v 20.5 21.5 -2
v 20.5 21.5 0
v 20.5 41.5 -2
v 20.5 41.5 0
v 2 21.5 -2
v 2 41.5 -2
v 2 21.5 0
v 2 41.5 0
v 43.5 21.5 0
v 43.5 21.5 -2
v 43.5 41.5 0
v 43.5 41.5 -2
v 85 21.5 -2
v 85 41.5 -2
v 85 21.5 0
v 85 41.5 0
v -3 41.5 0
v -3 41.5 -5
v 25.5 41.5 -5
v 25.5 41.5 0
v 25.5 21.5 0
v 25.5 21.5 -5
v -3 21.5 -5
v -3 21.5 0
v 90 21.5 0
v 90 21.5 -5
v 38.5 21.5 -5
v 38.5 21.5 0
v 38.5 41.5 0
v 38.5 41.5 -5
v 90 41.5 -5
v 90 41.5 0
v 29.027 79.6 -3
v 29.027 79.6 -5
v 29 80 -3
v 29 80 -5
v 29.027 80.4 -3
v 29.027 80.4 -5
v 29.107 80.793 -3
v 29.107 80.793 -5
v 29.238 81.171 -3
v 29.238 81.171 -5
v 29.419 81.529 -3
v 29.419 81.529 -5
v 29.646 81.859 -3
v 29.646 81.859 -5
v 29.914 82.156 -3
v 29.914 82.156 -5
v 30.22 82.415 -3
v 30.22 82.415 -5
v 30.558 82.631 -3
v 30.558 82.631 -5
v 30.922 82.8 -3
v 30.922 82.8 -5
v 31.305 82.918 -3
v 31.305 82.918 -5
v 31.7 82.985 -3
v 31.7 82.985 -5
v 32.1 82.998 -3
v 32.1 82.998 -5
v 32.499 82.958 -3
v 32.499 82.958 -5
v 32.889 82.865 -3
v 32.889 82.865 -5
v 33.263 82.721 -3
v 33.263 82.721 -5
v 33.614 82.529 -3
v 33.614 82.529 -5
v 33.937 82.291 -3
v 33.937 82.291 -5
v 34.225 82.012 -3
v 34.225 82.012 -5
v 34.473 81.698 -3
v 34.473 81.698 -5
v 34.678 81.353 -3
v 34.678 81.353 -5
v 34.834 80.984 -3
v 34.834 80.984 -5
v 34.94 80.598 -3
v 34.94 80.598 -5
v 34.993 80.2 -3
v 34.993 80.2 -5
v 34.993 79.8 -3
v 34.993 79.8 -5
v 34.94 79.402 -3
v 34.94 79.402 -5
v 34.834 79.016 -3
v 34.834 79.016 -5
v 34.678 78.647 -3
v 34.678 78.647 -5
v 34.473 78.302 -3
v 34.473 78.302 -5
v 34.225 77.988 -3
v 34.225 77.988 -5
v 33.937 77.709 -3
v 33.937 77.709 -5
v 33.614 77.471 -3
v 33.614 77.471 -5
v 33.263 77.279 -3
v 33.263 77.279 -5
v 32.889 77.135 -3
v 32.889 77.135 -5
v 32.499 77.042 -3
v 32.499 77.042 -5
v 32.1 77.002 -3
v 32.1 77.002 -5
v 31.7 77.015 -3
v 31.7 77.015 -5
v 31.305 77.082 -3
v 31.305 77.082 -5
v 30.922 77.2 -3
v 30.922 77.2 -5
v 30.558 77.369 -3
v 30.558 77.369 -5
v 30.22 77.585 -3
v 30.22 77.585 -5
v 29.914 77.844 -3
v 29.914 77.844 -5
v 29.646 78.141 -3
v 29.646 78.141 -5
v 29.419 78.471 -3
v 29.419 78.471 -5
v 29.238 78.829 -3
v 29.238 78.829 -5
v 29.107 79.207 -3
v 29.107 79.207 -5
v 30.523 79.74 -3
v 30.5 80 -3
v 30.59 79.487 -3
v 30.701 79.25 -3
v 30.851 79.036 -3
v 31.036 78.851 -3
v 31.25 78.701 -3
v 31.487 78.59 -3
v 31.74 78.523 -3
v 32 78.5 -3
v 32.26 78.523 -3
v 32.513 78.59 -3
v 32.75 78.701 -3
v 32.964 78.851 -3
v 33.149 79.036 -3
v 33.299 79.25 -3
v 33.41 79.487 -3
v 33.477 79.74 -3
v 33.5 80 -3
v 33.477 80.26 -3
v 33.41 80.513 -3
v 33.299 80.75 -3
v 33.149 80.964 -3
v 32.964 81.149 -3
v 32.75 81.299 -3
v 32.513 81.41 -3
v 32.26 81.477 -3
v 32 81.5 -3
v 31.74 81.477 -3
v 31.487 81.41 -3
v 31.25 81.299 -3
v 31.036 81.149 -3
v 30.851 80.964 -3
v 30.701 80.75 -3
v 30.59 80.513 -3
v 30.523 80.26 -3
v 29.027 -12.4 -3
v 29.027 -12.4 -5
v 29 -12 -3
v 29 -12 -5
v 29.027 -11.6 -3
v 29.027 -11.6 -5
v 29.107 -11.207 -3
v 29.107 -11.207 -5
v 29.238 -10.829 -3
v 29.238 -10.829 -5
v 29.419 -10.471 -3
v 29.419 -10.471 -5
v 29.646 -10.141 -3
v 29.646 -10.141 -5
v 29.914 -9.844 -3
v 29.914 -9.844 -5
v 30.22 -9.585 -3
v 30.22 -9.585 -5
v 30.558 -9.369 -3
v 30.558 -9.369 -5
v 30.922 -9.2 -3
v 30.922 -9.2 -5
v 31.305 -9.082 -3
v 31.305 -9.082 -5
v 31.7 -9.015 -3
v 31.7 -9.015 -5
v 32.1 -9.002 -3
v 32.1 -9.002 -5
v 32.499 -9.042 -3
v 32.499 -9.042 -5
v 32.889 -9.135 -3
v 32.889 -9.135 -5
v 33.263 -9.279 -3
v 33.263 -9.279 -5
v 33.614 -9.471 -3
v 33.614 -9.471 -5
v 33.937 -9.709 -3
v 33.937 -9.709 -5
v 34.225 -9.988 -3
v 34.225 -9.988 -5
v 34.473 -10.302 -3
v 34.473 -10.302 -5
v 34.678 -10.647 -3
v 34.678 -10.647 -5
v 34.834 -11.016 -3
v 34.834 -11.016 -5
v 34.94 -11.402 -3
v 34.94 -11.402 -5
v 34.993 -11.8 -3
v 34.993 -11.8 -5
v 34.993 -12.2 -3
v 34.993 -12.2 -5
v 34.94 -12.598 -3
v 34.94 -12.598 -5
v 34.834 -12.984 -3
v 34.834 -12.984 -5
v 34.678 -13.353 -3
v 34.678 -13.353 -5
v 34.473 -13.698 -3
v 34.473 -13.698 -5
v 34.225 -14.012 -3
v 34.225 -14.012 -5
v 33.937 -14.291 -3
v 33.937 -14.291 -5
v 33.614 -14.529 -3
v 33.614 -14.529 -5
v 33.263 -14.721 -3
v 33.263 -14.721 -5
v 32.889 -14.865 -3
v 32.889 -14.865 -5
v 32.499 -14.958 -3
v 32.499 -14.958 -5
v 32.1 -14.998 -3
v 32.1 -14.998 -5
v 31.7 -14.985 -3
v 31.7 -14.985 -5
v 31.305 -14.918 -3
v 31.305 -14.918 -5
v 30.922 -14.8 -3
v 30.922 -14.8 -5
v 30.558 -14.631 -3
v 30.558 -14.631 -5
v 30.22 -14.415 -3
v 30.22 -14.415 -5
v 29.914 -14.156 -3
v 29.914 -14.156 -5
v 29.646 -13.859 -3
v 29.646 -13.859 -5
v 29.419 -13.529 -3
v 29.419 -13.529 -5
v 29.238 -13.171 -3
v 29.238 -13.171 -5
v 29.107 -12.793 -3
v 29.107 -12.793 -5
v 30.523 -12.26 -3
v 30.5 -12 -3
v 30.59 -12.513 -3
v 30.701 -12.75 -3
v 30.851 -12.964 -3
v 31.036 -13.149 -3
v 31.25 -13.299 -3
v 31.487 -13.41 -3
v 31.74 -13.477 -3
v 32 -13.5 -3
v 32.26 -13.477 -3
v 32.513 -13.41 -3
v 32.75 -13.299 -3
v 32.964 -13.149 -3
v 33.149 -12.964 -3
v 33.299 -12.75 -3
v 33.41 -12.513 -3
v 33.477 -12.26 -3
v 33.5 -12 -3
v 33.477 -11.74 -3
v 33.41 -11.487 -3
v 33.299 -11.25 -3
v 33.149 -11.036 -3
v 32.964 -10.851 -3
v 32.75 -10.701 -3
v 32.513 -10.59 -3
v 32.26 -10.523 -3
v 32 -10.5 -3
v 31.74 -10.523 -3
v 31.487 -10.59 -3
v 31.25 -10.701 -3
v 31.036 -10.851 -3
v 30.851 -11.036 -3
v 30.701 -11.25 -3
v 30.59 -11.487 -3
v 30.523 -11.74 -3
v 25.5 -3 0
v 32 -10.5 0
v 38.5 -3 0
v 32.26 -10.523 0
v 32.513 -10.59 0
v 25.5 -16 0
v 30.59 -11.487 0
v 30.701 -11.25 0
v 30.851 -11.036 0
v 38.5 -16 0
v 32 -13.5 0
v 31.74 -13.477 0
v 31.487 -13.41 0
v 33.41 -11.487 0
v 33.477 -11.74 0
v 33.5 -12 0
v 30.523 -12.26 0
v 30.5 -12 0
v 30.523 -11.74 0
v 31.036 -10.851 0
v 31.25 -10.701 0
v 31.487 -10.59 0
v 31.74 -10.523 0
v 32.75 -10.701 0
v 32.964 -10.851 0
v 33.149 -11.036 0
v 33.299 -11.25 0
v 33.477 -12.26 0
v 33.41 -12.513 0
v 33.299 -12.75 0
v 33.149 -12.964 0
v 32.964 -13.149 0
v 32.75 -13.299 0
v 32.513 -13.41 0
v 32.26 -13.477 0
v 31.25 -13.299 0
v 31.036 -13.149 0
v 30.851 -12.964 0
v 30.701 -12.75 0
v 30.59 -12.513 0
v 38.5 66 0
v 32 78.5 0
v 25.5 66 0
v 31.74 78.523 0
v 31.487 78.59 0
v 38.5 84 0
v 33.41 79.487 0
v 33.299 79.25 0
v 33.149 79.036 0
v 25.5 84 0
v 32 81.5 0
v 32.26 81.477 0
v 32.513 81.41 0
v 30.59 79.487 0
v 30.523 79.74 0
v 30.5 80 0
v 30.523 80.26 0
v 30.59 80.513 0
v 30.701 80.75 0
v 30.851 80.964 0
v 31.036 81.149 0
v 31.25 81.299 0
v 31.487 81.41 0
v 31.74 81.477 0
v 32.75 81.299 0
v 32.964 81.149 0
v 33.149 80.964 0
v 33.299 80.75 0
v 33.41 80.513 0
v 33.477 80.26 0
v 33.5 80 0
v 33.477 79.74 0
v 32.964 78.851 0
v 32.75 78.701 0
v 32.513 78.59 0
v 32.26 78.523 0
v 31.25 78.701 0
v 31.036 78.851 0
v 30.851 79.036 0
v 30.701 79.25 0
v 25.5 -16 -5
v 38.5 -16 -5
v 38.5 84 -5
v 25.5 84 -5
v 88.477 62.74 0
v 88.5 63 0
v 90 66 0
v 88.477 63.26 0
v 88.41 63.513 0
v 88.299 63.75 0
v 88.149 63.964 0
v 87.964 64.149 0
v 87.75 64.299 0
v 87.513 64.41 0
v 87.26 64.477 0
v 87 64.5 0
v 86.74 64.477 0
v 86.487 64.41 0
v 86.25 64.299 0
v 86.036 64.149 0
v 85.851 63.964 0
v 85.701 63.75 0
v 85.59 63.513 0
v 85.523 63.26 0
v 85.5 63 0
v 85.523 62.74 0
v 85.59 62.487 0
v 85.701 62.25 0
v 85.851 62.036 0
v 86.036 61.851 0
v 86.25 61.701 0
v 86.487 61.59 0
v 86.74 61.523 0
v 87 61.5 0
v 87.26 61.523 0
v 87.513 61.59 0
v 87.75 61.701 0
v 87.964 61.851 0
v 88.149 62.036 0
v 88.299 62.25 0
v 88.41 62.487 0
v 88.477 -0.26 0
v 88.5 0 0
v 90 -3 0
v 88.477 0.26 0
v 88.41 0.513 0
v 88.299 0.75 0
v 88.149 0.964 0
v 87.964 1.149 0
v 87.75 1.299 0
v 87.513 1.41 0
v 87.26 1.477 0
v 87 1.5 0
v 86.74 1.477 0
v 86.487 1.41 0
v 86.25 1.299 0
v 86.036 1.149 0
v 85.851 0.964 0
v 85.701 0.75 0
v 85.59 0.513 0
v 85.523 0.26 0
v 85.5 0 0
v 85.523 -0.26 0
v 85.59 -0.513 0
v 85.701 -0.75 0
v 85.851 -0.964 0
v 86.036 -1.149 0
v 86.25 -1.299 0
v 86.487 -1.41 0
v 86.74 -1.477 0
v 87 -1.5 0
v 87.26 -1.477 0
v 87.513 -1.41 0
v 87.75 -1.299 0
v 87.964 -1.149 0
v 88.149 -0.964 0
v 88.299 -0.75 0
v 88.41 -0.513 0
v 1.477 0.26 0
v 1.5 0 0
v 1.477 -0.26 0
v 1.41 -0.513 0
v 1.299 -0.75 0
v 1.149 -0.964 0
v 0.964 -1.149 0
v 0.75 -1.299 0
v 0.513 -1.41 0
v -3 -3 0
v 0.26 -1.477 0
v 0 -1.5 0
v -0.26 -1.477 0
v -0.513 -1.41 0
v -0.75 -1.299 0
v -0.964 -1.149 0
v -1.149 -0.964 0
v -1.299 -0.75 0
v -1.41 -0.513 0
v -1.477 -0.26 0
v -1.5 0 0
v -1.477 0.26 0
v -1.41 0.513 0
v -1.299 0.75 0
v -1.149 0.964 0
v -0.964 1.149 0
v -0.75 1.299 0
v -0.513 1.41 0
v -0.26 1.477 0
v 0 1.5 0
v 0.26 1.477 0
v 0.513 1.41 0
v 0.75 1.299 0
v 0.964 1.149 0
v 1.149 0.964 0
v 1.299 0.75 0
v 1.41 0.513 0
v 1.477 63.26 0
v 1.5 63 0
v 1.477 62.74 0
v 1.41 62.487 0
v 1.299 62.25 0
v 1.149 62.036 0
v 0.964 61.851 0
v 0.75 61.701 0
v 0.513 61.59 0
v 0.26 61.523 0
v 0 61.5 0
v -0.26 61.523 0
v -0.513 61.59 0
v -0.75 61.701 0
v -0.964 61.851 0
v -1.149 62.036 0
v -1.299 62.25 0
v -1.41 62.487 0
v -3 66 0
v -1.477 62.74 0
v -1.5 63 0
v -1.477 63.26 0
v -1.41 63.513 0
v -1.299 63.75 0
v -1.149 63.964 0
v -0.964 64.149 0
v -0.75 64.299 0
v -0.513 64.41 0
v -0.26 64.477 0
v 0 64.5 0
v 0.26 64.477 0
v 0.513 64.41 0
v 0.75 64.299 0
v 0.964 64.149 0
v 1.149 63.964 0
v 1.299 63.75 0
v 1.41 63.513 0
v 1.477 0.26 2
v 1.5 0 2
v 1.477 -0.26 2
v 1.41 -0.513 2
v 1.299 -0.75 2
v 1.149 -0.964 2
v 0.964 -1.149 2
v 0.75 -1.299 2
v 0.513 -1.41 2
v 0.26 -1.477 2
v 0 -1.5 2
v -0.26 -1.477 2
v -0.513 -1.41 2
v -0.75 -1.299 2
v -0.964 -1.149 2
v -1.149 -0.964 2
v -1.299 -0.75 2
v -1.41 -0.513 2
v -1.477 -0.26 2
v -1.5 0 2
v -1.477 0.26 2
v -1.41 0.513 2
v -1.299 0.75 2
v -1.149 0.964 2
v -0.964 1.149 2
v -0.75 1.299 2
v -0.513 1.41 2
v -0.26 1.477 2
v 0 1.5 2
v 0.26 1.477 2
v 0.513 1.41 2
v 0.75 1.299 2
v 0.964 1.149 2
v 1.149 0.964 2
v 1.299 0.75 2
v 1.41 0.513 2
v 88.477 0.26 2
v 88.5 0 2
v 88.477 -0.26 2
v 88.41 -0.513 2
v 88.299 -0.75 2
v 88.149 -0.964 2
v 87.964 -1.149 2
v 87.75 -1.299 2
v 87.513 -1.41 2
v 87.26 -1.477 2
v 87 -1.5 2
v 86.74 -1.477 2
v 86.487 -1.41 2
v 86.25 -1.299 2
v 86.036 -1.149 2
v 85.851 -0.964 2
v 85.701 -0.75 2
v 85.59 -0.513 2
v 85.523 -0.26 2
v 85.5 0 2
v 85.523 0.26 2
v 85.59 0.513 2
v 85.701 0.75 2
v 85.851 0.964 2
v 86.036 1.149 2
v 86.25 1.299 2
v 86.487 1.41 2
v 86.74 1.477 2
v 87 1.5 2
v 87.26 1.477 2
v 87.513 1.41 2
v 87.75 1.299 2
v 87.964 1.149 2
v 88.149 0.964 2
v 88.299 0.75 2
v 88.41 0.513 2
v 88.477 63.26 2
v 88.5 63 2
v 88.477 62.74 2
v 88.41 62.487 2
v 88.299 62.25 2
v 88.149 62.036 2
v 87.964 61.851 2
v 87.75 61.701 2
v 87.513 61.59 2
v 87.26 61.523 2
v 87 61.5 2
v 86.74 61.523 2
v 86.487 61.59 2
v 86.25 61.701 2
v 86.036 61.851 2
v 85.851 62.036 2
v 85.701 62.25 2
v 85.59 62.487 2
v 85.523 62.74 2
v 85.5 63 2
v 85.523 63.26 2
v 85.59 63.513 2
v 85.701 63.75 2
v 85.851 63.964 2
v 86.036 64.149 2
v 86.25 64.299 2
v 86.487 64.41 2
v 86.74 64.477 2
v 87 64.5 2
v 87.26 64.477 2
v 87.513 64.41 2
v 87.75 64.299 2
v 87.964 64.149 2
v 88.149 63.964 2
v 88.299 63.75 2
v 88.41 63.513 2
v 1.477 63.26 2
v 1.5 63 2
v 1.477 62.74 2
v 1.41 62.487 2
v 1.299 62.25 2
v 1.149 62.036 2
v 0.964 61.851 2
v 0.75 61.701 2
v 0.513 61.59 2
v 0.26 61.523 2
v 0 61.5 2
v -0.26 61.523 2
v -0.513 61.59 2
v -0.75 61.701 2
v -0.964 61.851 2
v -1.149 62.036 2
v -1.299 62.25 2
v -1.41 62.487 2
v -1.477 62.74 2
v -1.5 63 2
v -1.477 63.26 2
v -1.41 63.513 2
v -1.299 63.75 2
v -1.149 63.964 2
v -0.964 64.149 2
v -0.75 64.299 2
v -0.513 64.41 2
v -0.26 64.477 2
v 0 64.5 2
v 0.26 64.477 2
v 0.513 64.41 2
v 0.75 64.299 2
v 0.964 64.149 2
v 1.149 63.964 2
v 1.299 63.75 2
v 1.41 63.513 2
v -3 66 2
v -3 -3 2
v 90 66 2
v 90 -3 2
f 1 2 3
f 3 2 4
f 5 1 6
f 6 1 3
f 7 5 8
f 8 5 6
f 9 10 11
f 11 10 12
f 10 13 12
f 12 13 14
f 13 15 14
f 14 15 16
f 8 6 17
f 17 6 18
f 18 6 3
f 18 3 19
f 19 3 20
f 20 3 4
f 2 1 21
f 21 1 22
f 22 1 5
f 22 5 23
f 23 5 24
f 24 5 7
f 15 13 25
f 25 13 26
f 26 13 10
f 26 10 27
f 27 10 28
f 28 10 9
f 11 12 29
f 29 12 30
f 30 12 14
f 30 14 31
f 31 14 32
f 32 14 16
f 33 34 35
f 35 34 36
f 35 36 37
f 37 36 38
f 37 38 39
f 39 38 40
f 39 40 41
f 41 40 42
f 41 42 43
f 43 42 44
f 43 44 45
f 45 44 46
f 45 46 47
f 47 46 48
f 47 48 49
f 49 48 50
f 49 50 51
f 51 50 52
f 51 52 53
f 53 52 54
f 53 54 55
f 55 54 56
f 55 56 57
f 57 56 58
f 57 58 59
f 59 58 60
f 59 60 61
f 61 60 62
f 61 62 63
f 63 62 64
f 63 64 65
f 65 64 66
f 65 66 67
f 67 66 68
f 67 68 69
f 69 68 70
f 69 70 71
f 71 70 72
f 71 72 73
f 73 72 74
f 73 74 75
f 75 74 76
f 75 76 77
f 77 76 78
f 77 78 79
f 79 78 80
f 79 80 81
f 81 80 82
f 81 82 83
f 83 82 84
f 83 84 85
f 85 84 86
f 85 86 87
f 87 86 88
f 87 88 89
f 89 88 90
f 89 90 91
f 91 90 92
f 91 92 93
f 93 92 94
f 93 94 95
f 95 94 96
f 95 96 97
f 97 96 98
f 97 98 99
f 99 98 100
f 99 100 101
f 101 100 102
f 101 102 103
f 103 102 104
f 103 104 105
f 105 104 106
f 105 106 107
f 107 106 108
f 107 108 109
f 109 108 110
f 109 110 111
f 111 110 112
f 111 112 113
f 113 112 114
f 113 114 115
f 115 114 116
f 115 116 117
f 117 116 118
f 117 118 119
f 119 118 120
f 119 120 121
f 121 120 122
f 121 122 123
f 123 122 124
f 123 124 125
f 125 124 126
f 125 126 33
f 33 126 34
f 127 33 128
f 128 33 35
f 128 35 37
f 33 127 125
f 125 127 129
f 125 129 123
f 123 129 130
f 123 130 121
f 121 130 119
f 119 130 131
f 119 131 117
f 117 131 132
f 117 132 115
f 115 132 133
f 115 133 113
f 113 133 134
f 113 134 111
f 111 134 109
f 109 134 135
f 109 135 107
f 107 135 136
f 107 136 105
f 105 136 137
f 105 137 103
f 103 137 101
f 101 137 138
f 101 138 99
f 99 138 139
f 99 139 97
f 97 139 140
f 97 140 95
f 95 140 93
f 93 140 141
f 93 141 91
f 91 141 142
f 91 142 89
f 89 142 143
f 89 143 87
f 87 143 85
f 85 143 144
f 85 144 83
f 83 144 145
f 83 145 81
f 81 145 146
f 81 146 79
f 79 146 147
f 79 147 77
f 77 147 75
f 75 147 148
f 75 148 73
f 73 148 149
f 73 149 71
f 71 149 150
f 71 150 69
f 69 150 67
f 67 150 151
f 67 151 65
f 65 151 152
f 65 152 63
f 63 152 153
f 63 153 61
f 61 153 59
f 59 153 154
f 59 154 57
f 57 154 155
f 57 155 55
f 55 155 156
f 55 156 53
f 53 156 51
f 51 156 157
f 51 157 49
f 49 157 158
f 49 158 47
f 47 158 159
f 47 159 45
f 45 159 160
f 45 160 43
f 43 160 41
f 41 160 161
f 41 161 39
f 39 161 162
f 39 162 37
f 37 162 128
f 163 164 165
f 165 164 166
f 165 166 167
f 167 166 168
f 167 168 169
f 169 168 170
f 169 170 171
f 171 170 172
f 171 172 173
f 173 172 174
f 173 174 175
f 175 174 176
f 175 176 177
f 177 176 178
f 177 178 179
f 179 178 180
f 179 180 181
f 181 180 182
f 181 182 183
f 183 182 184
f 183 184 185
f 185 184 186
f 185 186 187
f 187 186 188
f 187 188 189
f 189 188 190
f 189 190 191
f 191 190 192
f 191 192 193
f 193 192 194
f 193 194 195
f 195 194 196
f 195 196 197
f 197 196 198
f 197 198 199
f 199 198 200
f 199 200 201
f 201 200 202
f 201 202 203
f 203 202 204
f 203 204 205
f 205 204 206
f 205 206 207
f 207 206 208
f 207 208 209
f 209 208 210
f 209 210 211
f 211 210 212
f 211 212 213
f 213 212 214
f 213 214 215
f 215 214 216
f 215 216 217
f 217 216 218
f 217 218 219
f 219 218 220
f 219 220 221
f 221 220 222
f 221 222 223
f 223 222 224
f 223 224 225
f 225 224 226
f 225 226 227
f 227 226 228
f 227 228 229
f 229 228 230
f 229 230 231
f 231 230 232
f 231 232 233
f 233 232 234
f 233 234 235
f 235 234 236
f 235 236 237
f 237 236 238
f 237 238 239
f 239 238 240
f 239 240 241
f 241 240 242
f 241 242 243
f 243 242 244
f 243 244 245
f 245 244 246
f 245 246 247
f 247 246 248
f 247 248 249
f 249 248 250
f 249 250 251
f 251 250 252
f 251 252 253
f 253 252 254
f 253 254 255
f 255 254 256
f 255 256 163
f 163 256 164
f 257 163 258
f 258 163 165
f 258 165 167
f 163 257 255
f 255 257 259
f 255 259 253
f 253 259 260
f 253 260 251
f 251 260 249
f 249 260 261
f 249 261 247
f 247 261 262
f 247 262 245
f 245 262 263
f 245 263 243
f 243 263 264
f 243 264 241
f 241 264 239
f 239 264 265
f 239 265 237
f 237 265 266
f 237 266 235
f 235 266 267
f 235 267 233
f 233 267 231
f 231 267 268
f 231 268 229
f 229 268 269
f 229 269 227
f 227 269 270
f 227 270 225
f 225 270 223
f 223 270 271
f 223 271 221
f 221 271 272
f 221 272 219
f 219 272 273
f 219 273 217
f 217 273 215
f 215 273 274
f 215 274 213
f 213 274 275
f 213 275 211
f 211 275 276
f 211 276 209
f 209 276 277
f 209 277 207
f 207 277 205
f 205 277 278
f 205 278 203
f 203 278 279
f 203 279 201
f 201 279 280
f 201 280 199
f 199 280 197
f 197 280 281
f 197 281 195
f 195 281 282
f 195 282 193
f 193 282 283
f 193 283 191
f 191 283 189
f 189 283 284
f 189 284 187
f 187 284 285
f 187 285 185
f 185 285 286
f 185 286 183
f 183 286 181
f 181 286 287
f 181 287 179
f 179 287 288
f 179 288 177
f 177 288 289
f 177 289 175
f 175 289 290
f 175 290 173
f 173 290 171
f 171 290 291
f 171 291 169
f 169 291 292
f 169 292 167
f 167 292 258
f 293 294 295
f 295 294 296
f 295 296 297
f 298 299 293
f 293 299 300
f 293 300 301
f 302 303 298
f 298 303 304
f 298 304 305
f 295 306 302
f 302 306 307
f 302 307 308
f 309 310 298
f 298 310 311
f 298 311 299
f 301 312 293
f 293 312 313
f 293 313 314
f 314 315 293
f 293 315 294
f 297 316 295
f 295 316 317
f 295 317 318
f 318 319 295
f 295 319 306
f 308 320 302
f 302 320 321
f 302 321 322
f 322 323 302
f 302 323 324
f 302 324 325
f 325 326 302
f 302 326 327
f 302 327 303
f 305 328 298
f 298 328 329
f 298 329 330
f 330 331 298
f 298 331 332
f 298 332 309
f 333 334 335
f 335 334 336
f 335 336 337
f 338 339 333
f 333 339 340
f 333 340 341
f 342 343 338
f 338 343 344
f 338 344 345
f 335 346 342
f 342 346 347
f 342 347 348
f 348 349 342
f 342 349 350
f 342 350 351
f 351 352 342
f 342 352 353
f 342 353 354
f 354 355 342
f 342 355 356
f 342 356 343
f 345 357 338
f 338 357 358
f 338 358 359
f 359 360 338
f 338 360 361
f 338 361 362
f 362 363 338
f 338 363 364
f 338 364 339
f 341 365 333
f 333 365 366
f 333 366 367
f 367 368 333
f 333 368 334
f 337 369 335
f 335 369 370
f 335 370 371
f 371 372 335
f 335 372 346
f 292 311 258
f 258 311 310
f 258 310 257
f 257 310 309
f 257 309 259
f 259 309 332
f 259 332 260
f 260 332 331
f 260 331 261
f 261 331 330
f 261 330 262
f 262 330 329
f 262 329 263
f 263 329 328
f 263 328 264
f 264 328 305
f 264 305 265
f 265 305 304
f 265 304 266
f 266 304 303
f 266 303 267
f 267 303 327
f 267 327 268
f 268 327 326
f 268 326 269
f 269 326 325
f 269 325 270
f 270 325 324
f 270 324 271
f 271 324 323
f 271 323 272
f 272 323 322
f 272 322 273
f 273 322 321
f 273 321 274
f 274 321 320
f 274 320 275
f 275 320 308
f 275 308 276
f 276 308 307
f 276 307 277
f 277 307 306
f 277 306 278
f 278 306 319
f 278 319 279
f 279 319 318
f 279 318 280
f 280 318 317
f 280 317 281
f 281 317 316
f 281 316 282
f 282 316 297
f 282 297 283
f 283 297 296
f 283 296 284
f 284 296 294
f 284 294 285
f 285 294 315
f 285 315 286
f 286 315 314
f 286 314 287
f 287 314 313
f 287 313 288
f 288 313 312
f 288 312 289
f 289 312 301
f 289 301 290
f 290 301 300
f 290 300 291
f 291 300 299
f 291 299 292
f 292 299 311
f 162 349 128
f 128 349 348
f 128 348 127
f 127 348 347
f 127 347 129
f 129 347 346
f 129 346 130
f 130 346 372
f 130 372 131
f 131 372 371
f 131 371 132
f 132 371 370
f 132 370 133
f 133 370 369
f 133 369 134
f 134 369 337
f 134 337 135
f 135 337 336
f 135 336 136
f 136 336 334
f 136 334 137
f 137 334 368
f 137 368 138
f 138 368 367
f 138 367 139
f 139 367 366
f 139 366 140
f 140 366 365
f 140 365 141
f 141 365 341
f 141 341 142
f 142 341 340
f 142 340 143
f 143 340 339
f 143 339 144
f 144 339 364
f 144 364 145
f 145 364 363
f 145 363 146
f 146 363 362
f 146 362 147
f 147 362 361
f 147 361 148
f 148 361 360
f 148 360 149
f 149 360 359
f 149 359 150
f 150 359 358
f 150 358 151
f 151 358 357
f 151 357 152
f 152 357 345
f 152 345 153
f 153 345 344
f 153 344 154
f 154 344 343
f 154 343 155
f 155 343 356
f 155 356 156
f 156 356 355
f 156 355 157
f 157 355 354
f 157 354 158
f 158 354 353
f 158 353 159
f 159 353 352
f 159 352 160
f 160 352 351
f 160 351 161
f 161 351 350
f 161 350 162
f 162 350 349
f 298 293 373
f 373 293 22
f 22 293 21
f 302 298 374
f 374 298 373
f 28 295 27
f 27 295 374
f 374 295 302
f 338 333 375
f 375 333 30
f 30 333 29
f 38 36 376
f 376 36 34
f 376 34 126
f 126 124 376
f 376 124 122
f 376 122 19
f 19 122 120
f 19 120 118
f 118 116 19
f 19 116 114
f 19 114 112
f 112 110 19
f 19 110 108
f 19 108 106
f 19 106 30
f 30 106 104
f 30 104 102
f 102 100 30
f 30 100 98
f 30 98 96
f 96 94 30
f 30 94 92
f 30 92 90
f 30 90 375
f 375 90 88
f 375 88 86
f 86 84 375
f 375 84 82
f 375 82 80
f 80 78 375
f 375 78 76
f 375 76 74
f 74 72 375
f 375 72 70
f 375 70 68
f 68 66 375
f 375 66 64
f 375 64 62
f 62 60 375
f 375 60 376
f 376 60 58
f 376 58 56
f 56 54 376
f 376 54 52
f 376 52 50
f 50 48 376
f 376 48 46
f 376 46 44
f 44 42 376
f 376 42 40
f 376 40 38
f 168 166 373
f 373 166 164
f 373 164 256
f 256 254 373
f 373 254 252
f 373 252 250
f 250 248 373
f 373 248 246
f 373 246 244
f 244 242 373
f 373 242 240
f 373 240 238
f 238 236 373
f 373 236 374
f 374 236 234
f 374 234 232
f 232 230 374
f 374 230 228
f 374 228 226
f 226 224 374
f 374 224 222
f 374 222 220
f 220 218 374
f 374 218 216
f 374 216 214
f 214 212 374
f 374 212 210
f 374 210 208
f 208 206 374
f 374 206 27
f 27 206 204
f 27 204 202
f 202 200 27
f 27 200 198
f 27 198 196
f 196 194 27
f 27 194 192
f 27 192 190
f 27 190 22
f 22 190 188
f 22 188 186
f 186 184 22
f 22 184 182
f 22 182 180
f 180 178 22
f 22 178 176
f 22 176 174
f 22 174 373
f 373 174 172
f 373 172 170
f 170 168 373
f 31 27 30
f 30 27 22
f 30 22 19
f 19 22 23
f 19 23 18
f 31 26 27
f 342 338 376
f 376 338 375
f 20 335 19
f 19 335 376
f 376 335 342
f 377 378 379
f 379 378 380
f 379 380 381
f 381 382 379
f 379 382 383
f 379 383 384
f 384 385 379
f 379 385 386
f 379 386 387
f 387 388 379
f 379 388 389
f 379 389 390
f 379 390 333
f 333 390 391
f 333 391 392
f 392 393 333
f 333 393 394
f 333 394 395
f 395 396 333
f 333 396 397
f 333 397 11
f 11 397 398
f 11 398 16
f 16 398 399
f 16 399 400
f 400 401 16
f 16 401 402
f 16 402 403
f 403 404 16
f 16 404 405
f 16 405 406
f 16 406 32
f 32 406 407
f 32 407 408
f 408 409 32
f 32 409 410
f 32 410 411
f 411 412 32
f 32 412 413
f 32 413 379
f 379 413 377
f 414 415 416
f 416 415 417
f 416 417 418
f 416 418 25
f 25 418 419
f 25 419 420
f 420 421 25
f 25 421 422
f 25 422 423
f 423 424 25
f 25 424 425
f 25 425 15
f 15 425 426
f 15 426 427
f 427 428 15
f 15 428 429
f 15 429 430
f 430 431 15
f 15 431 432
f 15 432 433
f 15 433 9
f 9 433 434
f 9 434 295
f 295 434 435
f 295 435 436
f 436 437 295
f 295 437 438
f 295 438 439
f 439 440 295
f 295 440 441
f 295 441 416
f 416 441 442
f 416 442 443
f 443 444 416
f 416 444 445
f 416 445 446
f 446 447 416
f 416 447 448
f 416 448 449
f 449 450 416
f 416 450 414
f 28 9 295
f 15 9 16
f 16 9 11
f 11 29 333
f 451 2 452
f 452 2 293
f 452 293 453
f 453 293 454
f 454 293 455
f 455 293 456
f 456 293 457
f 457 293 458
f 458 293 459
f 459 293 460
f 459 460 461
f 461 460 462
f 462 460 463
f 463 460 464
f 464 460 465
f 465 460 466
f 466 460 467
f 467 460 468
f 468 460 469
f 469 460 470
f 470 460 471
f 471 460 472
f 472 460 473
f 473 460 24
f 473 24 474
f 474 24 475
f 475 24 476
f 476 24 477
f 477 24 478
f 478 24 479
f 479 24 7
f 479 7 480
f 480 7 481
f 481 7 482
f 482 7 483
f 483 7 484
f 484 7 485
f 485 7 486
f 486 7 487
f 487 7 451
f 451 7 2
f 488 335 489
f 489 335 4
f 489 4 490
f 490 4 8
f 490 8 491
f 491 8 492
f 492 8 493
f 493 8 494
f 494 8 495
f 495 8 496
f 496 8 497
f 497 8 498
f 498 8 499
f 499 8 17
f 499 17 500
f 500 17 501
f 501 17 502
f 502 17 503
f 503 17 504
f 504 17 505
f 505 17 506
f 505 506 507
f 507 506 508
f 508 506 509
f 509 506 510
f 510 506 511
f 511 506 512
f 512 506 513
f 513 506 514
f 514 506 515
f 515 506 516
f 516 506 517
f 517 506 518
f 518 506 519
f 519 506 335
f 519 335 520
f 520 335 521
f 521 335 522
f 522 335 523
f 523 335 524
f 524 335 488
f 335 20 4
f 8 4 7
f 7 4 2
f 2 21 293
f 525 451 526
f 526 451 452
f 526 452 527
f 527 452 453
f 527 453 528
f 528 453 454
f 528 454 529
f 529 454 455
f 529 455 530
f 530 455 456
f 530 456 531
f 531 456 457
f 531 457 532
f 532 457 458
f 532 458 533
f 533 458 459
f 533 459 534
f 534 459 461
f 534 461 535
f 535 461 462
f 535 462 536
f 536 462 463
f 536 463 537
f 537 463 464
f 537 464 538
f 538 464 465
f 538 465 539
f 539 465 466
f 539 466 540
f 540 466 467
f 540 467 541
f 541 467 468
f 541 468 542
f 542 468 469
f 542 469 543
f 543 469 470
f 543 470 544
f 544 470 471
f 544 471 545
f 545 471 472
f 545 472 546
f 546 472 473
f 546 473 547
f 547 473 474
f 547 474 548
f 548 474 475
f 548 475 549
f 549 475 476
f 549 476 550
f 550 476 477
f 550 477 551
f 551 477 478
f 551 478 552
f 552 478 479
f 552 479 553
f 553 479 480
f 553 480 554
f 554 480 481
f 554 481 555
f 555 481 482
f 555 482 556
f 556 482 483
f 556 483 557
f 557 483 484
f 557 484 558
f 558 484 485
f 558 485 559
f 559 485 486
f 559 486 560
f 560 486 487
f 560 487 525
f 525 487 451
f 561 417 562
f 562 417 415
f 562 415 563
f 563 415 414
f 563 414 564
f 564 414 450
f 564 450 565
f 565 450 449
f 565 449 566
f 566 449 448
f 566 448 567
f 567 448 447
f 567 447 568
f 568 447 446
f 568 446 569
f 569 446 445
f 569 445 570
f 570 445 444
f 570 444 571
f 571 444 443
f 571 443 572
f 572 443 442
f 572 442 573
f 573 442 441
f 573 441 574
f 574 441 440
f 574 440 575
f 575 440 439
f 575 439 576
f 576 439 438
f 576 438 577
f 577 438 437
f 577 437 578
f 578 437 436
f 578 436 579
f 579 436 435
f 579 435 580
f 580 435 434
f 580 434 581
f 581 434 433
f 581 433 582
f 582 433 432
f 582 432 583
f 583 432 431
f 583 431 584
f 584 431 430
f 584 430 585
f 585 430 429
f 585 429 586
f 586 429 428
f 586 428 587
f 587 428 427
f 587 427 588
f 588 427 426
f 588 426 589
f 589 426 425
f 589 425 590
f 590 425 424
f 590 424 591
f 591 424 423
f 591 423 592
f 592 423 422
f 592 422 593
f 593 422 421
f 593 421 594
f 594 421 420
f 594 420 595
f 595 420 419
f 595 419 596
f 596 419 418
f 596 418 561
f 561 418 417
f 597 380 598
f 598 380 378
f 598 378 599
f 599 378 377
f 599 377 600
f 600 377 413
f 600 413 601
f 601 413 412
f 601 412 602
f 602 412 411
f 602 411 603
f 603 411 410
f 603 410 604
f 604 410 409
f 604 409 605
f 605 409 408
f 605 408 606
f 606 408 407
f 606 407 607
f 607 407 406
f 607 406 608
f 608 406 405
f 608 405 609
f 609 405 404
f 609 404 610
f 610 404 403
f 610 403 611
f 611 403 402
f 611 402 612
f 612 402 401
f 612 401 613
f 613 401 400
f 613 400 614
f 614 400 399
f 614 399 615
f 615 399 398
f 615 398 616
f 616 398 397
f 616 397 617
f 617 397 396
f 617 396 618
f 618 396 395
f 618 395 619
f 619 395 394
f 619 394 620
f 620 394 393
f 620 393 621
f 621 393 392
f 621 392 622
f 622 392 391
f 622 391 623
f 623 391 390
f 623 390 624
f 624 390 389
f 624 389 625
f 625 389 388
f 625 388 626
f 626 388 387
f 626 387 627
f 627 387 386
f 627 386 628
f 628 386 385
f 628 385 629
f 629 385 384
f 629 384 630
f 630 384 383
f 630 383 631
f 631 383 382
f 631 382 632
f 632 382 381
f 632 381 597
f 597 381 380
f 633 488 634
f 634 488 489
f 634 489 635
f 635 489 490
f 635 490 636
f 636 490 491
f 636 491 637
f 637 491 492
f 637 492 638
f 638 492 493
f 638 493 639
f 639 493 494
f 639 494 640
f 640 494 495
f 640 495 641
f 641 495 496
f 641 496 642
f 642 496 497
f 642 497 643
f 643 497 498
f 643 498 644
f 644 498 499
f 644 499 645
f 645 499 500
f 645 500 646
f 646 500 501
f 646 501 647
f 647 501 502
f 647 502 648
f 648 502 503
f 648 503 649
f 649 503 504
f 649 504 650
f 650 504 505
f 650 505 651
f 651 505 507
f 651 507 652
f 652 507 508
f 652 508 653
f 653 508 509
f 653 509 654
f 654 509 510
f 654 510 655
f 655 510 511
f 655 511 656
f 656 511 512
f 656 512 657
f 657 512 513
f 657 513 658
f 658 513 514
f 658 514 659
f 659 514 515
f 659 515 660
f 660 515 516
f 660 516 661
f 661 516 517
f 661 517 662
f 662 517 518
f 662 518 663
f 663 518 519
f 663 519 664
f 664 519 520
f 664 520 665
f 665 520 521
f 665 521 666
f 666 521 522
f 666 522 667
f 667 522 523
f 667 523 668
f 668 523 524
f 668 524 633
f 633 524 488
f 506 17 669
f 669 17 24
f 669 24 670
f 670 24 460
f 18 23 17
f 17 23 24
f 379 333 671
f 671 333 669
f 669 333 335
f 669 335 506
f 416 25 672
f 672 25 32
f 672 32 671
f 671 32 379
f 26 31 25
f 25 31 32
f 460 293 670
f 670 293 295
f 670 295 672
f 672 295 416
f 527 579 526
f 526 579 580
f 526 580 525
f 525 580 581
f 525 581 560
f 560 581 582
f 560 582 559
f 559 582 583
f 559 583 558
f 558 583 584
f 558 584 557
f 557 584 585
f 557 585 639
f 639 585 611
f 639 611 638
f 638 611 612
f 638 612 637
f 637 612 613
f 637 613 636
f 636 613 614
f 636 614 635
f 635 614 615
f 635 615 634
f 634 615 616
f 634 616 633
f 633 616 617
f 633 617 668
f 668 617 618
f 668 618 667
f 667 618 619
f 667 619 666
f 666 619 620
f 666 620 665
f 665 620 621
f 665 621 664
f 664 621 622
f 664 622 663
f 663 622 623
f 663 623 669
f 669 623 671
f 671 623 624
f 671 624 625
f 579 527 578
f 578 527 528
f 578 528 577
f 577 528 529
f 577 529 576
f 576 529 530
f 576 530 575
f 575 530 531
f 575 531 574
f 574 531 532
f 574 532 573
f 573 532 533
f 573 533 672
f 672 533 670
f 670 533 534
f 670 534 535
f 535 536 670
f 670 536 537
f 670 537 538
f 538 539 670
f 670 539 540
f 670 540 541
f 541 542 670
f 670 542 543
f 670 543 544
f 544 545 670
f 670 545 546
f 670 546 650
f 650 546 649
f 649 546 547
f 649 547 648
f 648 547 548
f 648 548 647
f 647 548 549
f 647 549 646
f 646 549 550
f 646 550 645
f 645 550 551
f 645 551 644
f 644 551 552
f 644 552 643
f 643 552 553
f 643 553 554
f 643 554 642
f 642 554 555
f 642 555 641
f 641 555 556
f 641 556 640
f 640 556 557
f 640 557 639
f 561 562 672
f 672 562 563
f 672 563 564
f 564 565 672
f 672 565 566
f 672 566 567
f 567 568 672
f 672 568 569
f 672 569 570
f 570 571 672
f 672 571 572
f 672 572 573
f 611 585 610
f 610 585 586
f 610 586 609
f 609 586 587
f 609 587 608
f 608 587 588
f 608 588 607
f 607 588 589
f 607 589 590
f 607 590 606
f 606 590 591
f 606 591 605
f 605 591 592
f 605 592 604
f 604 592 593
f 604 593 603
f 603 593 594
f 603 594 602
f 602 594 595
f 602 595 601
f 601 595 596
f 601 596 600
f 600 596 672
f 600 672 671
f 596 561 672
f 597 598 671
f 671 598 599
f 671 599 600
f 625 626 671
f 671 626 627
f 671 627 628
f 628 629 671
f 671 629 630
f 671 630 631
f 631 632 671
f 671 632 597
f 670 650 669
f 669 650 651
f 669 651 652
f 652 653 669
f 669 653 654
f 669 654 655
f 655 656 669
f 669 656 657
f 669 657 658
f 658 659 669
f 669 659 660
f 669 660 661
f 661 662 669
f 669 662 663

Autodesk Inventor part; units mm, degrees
ref_plane "YZ Plane" through (0, 0, 0) normal (1, 0, 0) x (0, 1, 0)
ref_plane "XZ Plane" through (0, 0, 0) normal (0, 1, 0) x (-1, 0, 0)
ref_plane "XY Plane" through (0, 0, 0) normal (0, 0, 1) x (1, 0, 0)
sketch "Boceto1" plane through (0, 0, 0) normal (0, 0, 1) x (1, 0, 0)
  line L0 (0, 0) -> (87, 0)
  line L1 (87, 63) -> (0, 63)
  circle A0 centre (0, 63) radius 1.5
  circle A1 centre (87, 63) radius 1.5
  circle A2 centre (87, 0) radius 1.5
  circle A3 centre (0, 0) radius 1.5
  line L2 (0, -3) -> (87, -3)
  line L3 (87, -3) -> (90, -3)
  line L4 (90, -3) -> (90, 63)
  line L5 (90, 63) -> (90, 66)
  line L6 (90, 66) -> (0, 66)
  line L7 (0, 66) -> (-3, 66)
  line L8 (-3, 66) -> (-3, -3)
  line L9 (-3, -3) -> (0, -3)
  dimension "d0" = 87
  dimension "d1" = 63
  dimension "d2" = 3
  dimension "d3" = 3
  dimension "d4" = 3
  dimension "d5" = 3
  dimension "d8" = 3
  dimension "d9" = 3
  dimension "d10" = 3
extrude "Extrusión1" add sketch "Boceto1" along normal blind 2
sketch "Boceto2" plane through (0, 0, 0) normal (0, 0, -1) x (-1, 0, 0)
  line L0 (0, 0) -> (0, -12)
  circle A0 centre (0, 63) radius 1.5 projected
  line L1 (0, 63) -> (0, 80)
  line L2 (0, 80) -> (-32, 80)
  line L3 (0, -12) -> (-32, -12)
  circle A1 centre (-32, 80) radius 1.5
  circle A2 centre (-32, -12) radius 1.5
  line L4 (-32, 80) -> (-25.5, 80)
  line L5 (-25.5, 80) -> (-25.5, 84)
  line L6 (-25.5, 84) -> (-38.5, 84)
  line L7 (-38.5, 84) -> (-38.5, 66)
  line L8 (-90, 66) -> (3, 66) projected
  line L9 (-25.5, 80) -> (-25.5, 66)
  line L10 (-38.5, -12) -> (-38.5, -2.9941)
  line L11 (-38.5, -12) -> (-38.5, -16)
  line L12 (-38.5, -16) -> (-25.5, -16)
  line L13 (-25.5, -16) -> (-25.5, -3)
  line L14 (3, -3) -> (-90, -3) projected
  line L15 (3, 66) -> (3, -3) projected
  line L16 (3, 31.5) -> (3, 41.5)
  line L17 (3, 31.5) -> (3, 21.5)
  line L18 (-90, -3) -> (-90, 66) projected
  line L19 (-90, 21.5) -> (-90, 41.5)
  line L20 (-90, 41.5) -> (-38.5, 41.5)
  line L21 (-38.5, 41.5) -> (-38.5, 66)
  line L22 (3, 41.5) -> (-25.5, 41.5)
  line L23 (-38.5, -2.9941) -> (-38.5, 21.5)
  line L24 (-25.5, 66) -> (-25.5, 41.5)
  line L25 (-25.5, -3) -> (-25.5, 21.5)
  line L26 (-38.5, 21.5) -> (-90, 21.5)
  line L27 (-25.5, 21.5) -> (3, 21.5)
  dimension "d13" = 12
  dimension "d14" = 17
  dimension "d15" = 32
  dimension "d16" = 3
  dimension "d17" = 3
  dimension "d18" = 6.5
  dimension "d19" = 4
  dimension "d20" = 13
  dimension "d21" = 4
  dimension "d22" = 10
  dimension "d23" = 10
  dimension "d24" = 20
extrude "Extrusión2" add sketch "Boceto2" along normal blind 5 contours L13 L12 L11 L10 L14 | L14 L10 L23 L26 L18 L20 L21 L8 L24 L22 L15 L27 L25 | L8 L7 L6 L5 L9
sketch "Boceto3" plane through (0, 0, -5) normal (0, 0, -1) x (-1, 0, 0)
  circle A0 centre (-32, 80) radius 1.5 projected
  circle A1 centre (-32, 80) radius 3
  circle A2 centre (-32, -12) radius 1.5 projected
  circle A3 centre (-32, -12) radius 3
  point P0 (0, 0)
  dimension "d27" = 6
  dimension "d28" = 6
extrude "Extrusión3" cut sketch "Boceto3" against normal blind 2
sketch "Boceto4" plane through (38.5, 41.5, 0) normal (0, 1, 0) x (1, 0, 0)
  line L0 (51.5, 0) -> (51.5, 5) projected
  line L1 (51.5, 0) -> (46.5, 0)
  line L2 (51.5, 0) -> (0, 0) projected
  line L3 (46.5, 0) -> (46.5, 2)
  line L4 (46.5, 2) -> (5, 2)
  line L5 (5, 2) -> (5, 0)
  line L6 (5, 0) -> (46.5, 0)
  line L7 (-41.5, 0) -> (-13, 0) projected
  line L8 (-13, 0) -> (-18, 0)
  line L9 (-18, 0) -> (-18, 2)
  line L10 (-18, 2) -> (-36.5, 2)
  line L11 (-36.5, 2) -> (-36.5, 0)
  line L12 (-36.5, 0) -> (-18, 0)
  point P0 (-38.5, 0)
  dimension "d31" = 5
  dimension "d32" = 2
  dimension "d33" = 41.5
  dimension "d34" = 5
  dimension "d35" = 18.5
extrude "Extrusión4" cut sketch "Boceto4" against normal up to surface (20 mm away)
properties part number "soporte_odroid_xu3"
